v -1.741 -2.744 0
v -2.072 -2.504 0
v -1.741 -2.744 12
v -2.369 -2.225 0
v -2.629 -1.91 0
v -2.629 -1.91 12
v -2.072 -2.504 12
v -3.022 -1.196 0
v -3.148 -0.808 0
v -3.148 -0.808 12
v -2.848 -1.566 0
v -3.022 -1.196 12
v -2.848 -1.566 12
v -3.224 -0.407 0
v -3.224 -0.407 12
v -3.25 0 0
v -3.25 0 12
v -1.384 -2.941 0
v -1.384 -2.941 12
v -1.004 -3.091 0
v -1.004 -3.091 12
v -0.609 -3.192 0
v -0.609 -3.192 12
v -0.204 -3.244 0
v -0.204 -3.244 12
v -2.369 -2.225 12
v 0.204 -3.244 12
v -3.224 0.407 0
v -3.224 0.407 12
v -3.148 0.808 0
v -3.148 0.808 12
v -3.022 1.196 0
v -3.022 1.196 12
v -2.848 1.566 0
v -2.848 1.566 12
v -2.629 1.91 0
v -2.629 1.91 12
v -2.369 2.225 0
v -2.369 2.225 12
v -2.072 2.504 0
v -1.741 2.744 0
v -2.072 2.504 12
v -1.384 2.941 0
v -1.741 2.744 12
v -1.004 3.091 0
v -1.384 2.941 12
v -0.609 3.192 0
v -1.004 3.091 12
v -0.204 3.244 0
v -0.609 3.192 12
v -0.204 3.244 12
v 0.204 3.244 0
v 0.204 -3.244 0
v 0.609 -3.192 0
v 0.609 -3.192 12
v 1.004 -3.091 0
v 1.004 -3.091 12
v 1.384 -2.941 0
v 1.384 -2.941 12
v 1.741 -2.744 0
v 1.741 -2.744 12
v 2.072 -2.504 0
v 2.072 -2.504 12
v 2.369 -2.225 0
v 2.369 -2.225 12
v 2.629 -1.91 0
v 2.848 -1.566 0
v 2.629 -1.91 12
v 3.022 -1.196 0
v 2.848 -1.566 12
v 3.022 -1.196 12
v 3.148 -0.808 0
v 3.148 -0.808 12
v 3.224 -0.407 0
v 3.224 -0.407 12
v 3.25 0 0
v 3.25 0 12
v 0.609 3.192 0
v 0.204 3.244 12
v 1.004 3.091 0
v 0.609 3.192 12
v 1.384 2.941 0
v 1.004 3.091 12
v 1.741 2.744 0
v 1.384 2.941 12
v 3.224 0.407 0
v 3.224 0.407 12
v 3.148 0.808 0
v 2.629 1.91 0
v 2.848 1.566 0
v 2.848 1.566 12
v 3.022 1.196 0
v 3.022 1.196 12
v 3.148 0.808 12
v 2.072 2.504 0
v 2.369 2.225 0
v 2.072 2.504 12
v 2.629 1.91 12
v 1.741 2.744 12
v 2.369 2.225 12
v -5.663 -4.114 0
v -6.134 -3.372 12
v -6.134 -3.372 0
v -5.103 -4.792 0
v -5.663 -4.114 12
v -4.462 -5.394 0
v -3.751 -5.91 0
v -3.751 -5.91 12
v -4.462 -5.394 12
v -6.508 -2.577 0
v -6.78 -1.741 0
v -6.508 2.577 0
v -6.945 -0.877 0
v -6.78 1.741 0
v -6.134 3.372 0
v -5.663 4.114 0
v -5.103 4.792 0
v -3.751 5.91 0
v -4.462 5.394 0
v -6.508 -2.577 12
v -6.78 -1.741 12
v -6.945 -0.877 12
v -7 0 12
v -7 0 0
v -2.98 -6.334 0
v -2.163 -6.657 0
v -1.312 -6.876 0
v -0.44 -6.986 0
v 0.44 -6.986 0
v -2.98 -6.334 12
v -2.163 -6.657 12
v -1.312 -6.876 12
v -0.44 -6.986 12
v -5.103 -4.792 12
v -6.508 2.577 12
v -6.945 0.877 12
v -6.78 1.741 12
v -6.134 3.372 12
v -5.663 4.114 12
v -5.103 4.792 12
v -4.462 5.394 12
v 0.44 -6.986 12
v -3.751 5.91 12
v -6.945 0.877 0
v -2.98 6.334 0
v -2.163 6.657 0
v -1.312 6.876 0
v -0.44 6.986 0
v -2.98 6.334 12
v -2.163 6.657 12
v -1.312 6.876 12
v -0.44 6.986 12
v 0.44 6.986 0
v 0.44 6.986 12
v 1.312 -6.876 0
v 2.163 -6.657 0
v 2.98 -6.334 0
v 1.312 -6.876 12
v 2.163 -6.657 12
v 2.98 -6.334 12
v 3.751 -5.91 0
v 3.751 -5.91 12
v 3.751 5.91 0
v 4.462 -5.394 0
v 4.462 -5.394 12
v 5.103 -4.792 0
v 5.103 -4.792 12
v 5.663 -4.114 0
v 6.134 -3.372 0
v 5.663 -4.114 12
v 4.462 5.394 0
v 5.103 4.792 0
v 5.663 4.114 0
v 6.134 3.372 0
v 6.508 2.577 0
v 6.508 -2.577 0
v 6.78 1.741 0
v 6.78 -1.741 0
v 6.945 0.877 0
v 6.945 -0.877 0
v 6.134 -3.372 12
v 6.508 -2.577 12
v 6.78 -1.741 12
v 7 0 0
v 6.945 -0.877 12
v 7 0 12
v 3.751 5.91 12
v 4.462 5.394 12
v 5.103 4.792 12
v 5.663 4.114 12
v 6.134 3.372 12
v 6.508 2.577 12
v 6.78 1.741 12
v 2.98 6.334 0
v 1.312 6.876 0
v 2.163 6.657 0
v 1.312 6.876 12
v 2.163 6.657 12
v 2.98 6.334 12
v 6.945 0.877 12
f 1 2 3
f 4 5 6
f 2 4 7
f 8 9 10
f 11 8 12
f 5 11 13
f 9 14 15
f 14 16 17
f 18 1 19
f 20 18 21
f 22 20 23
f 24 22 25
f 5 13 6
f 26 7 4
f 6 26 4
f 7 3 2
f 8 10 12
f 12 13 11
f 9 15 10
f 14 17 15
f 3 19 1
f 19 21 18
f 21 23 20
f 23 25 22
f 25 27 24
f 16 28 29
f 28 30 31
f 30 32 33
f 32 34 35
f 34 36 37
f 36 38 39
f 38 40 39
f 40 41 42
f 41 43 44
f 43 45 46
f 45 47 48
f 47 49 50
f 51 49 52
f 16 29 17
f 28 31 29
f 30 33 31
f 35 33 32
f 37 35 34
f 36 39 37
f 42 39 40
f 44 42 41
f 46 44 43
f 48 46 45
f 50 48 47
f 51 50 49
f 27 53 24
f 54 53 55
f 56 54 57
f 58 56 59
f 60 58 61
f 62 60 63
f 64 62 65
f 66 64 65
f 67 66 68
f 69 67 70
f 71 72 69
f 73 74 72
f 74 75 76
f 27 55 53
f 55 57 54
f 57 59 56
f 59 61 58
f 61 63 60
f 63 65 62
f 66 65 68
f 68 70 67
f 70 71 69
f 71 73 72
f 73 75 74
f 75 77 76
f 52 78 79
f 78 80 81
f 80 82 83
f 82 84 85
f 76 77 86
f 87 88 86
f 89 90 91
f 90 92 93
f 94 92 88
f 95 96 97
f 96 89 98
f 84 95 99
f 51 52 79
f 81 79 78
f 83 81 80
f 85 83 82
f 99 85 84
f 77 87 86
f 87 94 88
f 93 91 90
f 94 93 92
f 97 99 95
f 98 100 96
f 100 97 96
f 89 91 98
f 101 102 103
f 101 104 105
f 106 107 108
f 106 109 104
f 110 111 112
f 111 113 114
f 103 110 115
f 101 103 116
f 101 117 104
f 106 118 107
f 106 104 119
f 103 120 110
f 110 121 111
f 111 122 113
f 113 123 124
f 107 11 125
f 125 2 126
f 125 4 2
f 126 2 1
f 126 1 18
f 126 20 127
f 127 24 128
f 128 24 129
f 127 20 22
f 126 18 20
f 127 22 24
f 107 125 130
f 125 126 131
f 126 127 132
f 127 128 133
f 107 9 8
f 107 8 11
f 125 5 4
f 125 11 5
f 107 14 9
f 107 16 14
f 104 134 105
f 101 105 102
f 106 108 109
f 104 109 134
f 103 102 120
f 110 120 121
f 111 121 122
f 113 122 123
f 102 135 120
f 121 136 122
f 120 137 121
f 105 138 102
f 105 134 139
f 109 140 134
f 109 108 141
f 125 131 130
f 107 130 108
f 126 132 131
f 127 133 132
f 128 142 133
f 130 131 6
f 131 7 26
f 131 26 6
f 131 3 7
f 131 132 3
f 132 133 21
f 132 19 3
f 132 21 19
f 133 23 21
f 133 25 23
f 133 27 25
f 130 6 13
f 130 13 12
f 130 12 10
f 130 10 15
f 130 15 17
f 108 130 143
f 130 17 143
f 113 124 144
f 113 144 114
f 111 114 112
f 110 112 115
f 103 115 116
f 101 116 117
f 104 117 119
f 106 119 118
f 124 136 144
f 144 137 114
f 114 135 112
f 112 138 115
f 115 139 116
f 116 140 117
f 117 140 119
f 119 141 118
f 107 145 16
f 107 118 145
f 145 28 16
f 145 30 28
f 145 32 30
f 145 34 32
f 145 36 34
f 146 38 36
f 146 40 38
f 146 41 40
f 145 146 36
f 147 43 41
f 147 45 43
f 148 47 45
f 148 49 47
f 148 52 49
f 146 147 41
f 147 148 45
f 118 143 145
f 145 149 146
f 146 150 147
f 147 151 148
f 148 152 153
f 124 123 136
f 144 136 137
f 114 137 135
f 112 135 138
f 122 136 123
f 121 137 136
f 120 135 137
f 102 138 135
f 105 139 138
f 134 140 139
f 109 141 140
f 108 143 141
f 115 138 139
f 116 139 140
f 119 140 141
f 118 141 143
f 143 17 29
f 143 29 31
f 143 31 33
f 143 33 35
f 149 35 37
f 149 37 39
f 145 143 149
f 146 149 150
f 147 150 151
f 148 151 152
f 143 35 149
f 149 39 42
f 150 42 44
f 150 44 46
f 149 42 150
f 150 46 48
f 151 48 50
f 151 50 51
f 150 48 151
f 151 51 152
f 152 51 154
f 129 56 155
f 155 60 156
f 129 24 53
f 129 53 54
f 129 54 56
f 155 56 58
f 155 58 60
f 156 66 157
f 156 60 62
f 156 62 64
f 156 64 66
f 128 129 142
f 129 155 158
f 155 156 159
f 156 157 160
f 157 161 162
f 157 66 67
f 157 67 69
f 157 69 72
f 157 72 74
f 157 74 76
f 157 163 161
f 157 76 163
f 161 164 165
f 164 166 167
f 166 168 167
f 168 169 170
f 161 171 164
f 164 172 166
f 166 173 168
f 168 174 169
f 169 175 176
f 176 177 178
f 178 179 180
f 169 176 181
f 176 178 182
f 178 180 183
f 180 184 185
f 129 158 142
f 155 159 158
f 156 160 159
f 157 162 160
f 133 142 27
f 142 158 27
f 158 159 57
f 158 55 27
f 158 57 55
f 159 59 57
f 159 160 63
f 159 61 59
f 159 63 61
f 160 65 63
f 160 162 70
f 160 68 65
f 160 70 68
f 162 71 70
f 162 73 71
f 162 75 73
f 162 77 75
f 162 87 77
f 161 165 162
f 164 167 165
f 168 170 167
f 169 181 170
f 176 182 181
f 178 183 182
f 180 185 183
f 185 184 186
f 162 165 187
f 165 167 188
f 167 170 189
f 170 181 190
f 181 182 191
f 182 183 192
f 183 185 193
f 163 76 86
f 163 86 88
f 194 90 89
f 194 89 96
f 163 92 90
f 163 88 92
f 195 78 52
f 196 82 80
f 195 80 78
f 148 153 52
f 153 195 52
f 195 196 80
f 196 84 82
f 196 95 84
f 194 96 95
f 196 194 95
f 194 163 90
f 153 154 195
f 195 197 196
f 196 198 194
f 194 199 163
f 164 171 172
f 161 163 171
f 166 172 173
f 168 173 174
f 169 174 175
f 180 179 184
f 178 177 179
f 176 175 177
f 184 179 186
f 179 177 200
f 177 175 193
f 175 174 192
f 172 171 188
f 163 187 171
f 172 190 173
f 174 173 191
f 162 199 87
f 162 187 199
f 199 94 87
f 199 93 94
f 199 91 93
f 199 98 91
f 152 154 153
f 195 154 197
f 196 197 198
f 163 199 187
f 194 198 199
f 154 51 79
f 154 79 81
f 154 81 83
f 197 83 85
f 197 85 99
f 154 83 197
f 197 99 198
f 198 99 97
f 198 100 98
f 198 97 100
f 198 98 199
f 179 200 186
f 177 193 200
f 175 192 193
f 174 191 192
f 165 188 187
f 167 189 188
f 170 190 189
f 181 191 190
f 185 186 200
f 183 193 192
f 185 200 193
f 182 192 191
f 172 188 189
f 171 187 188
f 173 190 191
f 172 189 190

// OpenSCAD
$fn = 50;

difference() {
	union() {
		cylinder(h = 12, r = 7.0);
	}
	union() {
		cylinder(h = 12, r = 3.25);
		cylinder(h = 12, r = 1.8);
	}
}
